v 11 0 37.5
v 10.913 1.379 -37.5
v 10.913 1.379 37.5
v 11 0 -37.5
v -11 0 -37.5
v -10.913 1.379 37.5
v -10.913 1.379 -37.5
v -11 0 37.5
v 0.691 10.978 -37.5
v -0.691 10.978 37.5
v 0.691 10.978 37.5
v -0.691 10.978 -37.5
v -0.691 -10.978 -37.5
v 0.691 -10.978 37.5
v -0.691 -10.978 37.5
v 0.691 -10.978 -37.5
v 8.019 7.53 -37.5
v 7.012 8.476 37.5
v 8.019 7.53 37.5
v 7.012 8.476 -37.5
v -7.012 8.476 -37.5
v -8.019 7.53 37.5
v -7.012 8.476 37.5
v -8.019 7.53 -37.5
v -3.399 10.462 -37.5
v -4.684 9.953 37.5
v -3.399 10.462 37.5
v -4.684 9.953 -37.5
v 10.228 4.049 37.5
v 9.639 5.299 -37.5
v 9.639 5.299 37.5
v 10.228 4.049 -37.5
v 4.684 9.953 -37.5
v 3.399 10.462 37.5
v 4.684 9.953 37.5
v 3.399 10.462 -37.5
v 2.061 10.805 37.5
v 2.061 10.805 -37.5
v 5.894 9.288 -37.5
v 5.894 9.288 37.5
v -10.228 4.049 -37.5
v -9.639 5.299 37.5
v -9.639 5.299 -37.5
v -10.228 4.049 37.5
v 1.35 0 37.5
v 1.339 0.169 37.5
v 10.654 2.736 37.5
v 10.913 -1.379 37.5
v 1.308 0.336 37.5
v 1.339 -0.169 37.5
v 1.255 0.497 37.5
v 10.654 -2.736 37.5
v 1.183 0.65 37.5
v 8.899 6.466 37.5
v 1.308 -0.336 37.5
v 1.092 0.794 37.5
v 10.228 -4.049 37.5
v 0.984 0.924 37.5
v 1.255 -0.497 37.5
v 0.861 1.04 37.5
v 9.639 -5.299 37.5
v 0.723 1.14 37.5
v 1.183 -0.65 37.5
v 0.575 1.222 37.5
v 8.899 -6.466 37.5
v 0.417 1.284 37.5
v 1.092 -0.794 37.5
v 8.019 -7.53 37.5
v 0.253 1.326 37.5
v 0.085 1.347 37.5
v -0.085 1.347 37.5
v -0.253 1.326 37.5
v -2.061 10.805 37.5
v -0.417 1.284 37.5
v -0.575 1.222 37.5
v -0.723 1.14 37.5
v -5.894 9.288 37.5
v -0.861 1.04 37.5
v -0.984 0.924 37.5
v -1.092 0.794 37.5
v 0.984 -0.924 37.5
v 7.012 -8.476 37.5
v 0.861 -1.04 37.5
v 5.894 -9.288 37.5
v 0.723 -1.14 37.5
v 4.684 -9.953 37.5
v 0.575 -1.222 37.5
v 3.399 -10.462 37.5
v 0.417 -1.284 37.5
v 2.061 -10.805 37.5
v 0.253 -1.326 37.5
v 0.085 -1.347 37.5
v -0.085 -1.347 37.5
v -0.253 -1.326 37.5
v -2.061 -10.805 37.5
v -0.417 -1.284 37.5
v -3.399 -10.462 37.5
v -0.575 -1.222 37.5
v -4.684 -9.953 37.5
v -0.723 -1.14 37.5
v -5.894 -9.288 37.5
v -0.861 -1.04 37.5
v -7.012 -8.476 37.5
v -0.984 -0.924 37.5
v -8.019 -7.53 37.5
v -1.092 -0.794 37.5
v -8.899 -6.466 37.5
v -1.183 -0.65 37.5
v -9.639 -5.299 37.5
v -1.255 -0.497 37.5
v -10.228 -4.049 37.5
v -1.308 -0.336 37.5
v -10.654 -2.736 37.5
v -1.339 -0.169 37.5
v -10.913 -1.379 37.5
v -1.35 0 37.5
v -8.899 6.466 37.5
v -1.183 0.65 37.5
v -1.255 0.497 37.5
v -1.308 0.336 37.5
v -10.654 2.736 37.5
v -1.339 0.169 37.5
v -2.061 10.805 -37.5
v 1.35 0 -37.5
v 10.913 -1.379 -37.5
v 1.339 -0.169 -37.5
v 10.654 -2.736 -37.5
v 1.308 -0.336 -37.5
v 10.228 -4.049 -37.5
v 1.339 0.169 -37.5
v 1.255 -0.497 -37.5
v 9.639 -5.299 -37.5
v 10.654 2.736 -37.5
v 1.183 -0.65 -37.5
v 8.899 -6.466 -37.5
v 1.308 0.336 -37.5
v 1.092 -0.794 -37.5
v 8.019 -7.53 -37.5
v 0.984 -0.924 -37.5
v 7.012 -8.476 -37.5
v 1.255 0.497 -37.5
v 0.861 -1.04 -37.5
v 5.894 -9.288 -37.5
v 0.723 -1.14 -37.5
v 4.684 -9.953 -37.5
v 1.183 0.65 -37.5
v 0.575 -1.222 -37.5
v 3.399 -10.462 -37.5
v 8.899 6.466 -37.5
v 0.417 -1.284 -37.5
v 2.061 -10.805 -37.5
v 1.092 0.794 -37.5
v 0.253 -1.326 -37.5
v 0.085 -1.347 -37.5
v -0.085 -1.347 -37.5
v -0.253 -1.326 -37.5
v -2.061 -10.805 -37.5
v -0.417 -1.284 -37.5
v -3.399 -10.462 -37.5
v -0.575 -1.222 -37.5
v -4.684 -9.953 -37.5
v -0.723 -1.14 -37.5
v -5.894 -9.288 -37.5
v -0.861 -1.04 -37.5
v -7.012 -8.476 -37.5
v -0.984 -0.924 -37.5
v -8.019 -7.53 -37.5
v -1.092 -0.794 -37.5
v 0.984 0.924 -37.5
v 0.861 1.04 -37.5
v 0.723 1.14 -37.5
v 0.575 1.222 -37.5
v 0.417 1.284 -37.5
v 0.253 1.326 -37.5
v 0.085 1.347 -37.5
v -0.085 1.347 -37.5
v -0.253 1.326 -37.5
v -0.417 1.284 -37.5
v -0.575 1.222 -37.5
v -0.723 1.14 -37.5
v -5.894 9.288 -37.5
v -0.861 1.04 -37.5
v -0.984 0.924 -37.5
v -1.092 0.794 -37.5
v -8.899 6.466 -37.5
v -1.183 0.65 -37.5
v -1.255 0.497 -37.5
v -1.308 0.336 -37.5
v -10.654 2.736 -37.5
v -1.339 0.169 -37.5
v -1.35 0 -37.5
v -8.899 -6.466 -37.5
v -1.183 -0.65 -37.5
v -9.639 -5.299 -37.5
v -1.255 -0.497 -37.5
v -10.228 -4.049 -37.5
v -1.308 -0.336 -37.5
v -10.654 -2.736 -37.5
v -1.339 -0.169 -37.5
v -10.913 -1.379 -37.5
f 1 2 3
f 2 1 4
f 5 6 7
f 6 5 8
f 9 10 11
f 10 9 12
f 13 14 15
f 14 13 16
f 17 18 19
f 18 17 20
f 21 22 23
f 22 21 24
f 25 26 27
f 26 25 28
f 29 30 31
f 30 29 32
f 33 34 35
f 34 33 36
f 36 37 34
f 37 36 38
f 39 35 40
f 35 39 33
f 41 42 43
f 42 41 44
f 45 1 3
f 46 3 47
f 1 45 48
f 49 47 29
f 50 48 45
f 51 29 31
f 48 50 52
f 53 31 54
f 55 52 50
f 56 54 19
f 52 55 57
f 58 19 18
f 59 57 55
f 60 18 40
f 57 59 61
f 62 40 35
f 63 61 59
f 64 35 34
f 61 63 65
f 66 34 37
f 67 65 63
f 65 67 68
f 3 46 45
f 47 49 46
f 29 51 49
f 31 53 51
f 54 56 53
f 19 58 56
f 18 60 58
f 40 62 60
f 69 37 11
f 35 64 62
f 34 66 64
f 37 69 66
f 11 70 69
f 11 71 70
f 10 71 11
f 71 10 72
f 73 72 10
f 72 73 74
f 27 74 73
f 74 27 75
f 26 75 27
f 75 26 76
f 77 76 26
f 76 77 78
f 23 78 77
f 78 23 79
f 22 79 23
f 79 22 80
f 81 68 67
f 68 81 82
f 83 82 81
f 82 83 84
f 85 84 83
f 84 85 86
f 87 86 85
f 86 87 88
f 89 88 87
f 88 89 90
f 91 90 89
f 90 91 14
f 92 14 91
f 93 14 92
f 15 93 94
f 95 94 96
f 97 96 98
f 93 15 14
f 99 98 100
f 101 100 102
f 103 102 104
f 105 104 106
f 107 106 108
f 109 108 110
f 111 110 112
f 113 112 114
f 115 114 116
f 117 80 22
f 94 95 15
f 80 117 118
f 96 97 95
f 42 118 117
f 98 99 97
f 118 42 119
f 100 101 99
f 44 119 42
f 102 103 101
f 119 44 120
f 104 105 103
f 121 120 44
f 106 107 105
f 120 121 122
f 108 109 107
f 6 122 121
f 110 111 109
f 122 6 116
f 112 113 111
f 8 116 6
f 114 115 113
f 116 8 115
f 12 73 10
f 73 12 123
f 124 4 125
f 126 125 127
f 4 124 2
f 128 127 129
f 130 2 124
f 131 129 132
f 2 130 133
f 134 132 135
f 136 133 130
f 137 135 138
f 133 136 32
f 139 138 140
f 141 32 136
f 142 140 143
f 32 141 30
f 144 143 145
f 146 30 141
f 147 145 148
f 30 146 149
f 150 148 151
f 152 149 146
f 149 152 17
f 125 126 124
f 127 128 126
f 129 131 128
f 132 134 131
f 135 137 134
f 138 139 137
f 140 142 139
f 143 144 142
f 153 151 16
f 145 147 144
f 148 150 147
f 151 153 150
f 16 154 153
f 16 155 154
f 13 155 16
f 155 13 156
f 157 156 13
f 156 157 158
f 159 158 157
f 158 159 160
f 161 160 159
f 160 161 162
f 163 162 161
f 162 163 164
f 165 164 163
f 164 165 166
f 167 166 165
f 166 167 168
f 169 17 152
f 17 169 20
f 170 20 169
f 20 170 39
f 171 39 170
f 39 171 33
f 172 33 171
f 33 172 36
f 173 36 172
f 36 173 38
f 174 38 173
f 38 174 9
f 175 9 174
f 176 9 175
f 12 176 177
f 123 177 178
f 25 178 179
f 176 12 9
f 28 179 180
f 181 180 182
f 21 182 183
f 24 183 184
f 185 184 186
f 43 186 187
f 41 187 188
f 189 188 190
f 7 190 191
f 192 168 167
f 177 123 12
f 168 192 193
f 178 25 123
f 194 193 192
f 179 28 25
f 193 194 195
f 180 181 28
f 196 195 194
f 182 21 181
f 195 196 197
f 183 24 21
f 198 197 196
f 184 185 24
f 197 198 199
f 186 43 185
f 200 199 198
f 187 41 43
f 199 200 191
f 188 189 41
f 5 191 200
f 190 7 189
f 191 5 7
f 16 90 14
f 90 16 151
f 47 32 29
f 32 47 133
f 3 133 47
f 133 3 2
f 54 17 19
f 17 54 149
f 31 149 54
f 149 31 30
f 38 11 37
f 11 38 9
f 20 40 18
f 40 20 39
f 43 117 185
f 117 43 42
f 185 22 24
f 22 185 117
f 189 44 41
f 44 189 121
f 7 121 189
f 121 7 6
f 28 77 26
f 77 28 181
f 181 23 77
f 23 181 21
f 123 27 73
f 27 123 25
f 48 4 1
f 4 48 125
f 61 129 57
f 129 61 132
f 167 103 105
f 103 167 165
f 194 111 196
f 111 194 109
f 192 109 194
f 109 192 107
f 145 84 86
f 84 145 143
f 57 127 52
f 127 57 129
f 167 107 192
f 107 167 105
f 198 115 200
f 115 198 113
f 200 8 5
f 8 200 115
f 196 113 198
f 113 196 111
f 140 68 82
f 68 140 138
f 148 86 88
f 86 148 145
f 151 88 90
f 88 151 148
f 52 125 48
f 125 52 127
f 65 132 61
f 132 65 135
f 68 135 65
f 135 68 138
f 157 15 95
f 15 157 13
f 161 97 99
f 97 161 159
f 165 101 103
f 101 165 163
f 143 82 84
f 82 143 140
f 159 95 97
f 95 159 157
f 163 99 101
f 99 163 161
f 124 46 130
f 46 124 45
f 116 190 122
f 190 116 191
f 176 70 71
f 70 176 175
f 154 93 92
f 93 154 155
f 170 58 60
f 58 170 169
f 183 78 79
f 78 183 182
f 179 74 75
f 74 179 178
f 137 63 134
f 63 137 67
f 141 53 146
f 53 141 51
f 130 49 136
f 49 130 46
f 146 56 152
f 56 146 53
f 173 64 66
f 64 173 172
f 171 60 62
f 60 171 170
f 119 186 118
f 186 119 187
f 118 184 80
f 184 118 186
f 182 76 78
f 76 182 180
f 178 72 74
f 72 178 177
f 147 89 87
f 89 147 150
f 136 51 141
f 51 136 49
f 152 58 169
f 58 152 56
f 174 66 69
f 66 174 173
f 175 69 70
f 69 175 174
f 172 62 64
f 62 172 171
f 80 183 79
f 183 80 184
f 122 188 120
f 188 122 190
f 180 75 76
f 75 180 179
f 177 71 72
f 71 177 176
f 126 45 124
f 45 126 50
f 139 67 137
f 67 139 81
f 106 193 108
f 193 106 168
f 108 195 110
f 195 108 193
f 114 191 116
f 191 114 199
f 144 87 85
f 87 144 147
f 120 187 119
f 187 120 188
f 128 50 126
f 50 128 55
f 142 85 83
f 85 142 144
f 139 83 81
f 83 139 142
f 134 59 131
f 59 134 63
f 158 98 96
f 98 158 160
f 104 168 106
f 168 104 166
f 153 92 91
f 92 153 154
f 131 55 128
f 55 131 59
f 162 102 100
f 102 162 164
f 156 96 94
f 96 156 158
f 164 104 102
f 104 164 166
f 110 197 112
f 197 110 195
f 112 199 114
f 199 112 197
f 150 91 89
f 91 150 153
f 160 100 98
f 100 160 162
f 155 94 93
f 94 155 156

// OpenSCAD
$fn = 50;


difference() {
	union() {
		translate(v = [0, 0, -37.5000000000]) {
			cylinder(h = 75, r = 11.0000000000);
		}
	}
	union() {
		translate(v = [0, 0, -100.0000000000]) {
			cylinder(h = 200, r = 1.3500000000);
		}
	}
}
